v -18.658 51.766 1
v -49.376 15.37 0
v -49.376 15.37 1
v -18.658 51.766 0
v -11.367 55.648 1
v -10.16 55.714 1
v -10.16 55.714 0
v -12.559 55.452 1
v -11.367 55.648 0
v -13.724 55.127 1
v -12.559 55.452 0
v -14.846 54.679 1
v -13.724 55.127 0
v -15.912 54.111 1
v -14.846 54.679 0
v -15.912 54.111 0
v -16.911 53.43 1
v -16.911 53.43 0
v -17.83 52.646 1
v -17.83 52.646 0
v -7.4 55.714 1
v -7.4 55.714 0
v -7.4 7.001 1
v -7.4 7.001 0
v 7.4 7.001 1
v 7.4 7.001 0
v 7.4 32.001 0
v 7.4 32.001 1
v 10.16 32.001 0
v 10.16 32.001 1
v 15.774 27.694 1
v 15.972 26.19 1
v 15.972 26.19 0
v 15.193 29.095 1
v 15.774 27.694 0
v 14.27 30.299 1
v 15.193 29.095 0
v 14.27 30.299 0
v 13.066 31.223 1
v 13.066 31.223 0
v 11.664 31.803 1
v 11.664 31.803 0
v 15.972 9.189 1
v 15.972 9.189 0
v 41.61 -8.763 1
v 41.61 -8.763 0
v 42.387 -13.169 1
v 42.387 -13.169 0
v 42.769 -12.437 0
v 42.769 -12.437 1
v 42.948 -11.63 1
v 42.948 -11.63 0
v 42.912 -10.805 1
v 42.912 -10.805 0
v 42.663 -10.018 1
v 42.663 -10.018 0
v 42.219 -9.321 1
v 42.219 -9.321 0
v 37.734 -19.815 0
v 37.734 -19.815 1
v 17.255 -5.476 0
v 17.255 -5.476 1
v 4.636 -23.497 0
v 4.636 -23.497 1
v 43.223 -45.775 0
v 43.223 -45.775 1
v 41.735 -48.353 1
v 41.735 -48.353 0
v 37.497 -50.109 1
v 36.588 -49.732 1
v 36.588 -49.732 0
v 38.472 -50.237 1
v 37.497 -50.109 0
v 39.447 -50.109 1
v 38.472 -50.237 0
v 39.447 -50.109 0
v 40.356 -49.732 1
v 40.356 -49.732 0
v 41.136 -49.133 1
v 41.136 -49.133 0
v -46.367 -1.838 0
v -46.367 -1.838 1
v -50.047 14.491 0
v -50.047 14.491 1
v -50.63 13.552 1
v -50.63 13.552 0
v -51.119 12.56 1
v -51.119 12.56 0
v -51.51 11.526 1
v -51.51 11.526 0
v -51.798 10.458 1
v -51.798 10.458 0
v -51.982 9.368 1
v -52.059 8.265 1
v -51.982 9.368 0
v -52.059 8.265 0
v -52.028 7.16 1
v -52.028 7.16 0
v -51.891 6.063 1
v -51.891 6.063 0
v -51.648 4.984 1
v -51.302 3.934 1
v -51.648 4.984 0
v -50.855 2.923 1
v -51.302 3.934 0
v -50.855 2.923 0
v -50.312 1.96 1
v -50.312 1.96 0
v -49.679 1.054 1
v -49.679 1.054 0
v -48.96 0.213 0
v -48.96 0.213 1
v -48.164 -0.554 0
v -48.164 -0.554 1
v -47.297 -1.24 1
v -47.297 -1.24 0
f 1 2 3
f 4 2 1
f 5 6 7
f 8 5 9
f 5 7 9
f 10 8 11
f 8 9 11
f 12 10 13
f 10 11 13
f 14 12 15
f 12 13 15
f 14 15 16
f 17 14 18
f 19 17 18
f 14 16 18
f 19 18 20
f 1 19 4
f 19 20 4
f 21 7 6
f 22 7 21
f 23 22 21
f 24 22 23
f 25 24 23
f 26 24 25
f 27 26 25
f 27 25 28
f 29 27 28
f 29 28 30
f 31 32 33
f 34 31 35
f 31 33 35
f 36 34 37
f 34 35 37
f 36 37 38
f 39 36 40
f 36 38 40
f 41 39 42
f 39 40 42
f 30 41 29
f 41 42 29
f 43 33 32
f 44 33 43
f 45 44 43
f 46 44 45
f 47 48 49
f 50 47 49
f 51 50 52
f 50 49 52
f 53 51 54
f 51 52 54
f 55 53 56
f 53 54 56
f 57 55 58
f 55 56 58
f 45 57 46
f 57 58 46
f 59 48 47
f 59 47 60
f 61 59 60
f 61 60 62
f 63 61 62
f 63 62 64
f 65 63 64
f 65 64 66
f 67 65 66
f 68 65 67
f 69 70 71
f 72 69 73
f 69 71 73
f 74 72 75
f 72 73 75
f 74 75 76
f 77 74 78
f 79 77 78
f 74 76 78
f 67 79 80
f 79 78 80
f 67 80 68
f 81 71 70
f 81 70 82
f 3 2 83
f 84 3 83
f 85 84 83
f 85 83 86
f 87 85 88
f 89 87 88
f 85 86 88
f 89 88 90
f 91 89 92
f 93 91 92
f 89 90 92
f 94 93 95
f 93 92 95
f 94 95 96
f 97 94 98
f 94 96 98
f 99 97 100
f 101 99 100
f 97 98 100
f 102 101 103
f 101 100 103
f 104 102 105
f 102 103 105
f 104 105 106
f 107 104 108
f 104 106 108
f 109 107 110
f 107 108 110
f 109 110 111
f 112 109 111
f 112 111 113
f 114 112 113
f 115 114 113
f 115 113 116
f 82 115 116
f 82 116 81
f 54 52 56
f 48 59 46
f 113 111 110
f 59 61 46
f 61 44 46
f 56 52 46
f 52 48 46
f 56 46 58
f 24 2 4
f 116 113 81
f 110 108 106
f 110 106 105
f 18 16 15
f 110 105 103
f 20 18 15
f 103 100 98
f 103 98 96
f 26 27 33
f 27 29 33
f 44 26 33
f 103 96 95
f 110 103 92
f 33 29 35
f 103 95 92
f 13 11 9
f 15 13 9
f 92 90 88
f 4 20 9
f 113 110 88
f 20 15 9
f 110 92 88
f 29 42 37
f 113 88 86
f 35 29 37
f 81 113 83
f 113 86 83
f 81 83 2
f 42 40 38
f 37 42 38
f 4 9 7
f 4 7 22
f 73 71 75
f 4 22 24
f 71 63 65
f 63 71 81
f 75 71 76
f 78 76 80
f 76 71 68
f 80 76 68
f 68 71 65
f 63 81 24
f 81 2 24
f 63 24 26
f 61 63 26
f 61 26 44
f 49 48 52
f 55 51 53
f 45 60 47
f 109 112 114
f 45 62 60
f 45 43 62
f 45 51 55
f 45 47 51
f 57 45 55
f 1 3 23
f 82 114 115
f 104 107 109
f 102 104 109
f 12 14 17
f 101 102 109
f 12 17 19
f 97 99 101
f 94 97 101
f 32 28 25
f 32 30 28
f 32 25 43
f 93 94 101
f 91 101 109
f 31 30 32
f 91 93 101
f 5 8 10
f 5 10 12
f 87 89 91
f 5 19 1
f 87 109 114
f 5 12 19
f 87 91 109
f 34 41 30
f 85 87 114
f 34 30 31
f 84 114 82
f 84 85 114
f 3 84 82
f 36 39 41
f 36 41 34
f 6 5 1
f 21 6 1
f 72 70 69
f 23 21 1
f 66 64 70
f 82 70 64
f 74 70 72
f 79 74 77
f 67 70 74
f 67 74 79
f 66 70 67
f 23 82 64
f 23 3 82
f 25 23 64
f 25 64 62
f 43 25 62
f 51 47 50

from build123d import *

# Parameters (mm, degrees)
PAD_DEPTH = 1


with BuildPart() as part:
    # Sketch → Pad (new body)
    with BuildSketch(Plane.XY):
        with BuildLine():
            Line((-10.160357, 55.713741), (-7.4, 55.713741))
            Line((-7.4, 55.713741), (-7.4, 7.001158))
            Line((-7.4, 7.001158), (7.4, 7.001158))
            Line((7.4, 7.001158), (7.4, 32.001158))
            Line((7.4, 32.001158), (10.160357, 32.001158))
            ThreePointArc((15.97188, 26.189635), (14.269724, 30.299002), (10.160357, 32.001158))
            Line((15.97188, 26.189635), (15.97188, 9.18934))
            Line((15.97188, 9.18934), (41.610469, -8.762993))
            ThreePointArc((42.38744, -13.169411), (42.911553, -10.805287), (41.610469, -8.762993))
            Line((42.38744, -13.169411), (37.733901, -19.815354))
            Line((37.733901, -19.815354), (17.2551, -5.475943))
            Line((17.2551, -5.475943), (4.636418, -23.497288))
            Line((4.636418, -23.497288), (43.223113, -45.775327))
            Line((43.223113, -45.775327), (41.734914, -48.352964))
            ThreePointArc((36.587732, -49.732148), (39.446961, -50.108572), (41.734914, -48.352964))
            Line((36.587732, -49.732148), (-46.367118, -1.838143))
            ThreePointArc((-49.375993, 15.369795), (-51.891139, 6.062986), (-46.367118, -1.838143))
            Line((-49.375993, 15.369795), (-18.658434, 51.765797))
            ThreePointArc((-10.160357, 55.713741), (-14.845535, 54.678573), (-18.658434, 51.765797))
        make_face()
    extrude(amount=PAD_DEPTH)


solid = part.part
